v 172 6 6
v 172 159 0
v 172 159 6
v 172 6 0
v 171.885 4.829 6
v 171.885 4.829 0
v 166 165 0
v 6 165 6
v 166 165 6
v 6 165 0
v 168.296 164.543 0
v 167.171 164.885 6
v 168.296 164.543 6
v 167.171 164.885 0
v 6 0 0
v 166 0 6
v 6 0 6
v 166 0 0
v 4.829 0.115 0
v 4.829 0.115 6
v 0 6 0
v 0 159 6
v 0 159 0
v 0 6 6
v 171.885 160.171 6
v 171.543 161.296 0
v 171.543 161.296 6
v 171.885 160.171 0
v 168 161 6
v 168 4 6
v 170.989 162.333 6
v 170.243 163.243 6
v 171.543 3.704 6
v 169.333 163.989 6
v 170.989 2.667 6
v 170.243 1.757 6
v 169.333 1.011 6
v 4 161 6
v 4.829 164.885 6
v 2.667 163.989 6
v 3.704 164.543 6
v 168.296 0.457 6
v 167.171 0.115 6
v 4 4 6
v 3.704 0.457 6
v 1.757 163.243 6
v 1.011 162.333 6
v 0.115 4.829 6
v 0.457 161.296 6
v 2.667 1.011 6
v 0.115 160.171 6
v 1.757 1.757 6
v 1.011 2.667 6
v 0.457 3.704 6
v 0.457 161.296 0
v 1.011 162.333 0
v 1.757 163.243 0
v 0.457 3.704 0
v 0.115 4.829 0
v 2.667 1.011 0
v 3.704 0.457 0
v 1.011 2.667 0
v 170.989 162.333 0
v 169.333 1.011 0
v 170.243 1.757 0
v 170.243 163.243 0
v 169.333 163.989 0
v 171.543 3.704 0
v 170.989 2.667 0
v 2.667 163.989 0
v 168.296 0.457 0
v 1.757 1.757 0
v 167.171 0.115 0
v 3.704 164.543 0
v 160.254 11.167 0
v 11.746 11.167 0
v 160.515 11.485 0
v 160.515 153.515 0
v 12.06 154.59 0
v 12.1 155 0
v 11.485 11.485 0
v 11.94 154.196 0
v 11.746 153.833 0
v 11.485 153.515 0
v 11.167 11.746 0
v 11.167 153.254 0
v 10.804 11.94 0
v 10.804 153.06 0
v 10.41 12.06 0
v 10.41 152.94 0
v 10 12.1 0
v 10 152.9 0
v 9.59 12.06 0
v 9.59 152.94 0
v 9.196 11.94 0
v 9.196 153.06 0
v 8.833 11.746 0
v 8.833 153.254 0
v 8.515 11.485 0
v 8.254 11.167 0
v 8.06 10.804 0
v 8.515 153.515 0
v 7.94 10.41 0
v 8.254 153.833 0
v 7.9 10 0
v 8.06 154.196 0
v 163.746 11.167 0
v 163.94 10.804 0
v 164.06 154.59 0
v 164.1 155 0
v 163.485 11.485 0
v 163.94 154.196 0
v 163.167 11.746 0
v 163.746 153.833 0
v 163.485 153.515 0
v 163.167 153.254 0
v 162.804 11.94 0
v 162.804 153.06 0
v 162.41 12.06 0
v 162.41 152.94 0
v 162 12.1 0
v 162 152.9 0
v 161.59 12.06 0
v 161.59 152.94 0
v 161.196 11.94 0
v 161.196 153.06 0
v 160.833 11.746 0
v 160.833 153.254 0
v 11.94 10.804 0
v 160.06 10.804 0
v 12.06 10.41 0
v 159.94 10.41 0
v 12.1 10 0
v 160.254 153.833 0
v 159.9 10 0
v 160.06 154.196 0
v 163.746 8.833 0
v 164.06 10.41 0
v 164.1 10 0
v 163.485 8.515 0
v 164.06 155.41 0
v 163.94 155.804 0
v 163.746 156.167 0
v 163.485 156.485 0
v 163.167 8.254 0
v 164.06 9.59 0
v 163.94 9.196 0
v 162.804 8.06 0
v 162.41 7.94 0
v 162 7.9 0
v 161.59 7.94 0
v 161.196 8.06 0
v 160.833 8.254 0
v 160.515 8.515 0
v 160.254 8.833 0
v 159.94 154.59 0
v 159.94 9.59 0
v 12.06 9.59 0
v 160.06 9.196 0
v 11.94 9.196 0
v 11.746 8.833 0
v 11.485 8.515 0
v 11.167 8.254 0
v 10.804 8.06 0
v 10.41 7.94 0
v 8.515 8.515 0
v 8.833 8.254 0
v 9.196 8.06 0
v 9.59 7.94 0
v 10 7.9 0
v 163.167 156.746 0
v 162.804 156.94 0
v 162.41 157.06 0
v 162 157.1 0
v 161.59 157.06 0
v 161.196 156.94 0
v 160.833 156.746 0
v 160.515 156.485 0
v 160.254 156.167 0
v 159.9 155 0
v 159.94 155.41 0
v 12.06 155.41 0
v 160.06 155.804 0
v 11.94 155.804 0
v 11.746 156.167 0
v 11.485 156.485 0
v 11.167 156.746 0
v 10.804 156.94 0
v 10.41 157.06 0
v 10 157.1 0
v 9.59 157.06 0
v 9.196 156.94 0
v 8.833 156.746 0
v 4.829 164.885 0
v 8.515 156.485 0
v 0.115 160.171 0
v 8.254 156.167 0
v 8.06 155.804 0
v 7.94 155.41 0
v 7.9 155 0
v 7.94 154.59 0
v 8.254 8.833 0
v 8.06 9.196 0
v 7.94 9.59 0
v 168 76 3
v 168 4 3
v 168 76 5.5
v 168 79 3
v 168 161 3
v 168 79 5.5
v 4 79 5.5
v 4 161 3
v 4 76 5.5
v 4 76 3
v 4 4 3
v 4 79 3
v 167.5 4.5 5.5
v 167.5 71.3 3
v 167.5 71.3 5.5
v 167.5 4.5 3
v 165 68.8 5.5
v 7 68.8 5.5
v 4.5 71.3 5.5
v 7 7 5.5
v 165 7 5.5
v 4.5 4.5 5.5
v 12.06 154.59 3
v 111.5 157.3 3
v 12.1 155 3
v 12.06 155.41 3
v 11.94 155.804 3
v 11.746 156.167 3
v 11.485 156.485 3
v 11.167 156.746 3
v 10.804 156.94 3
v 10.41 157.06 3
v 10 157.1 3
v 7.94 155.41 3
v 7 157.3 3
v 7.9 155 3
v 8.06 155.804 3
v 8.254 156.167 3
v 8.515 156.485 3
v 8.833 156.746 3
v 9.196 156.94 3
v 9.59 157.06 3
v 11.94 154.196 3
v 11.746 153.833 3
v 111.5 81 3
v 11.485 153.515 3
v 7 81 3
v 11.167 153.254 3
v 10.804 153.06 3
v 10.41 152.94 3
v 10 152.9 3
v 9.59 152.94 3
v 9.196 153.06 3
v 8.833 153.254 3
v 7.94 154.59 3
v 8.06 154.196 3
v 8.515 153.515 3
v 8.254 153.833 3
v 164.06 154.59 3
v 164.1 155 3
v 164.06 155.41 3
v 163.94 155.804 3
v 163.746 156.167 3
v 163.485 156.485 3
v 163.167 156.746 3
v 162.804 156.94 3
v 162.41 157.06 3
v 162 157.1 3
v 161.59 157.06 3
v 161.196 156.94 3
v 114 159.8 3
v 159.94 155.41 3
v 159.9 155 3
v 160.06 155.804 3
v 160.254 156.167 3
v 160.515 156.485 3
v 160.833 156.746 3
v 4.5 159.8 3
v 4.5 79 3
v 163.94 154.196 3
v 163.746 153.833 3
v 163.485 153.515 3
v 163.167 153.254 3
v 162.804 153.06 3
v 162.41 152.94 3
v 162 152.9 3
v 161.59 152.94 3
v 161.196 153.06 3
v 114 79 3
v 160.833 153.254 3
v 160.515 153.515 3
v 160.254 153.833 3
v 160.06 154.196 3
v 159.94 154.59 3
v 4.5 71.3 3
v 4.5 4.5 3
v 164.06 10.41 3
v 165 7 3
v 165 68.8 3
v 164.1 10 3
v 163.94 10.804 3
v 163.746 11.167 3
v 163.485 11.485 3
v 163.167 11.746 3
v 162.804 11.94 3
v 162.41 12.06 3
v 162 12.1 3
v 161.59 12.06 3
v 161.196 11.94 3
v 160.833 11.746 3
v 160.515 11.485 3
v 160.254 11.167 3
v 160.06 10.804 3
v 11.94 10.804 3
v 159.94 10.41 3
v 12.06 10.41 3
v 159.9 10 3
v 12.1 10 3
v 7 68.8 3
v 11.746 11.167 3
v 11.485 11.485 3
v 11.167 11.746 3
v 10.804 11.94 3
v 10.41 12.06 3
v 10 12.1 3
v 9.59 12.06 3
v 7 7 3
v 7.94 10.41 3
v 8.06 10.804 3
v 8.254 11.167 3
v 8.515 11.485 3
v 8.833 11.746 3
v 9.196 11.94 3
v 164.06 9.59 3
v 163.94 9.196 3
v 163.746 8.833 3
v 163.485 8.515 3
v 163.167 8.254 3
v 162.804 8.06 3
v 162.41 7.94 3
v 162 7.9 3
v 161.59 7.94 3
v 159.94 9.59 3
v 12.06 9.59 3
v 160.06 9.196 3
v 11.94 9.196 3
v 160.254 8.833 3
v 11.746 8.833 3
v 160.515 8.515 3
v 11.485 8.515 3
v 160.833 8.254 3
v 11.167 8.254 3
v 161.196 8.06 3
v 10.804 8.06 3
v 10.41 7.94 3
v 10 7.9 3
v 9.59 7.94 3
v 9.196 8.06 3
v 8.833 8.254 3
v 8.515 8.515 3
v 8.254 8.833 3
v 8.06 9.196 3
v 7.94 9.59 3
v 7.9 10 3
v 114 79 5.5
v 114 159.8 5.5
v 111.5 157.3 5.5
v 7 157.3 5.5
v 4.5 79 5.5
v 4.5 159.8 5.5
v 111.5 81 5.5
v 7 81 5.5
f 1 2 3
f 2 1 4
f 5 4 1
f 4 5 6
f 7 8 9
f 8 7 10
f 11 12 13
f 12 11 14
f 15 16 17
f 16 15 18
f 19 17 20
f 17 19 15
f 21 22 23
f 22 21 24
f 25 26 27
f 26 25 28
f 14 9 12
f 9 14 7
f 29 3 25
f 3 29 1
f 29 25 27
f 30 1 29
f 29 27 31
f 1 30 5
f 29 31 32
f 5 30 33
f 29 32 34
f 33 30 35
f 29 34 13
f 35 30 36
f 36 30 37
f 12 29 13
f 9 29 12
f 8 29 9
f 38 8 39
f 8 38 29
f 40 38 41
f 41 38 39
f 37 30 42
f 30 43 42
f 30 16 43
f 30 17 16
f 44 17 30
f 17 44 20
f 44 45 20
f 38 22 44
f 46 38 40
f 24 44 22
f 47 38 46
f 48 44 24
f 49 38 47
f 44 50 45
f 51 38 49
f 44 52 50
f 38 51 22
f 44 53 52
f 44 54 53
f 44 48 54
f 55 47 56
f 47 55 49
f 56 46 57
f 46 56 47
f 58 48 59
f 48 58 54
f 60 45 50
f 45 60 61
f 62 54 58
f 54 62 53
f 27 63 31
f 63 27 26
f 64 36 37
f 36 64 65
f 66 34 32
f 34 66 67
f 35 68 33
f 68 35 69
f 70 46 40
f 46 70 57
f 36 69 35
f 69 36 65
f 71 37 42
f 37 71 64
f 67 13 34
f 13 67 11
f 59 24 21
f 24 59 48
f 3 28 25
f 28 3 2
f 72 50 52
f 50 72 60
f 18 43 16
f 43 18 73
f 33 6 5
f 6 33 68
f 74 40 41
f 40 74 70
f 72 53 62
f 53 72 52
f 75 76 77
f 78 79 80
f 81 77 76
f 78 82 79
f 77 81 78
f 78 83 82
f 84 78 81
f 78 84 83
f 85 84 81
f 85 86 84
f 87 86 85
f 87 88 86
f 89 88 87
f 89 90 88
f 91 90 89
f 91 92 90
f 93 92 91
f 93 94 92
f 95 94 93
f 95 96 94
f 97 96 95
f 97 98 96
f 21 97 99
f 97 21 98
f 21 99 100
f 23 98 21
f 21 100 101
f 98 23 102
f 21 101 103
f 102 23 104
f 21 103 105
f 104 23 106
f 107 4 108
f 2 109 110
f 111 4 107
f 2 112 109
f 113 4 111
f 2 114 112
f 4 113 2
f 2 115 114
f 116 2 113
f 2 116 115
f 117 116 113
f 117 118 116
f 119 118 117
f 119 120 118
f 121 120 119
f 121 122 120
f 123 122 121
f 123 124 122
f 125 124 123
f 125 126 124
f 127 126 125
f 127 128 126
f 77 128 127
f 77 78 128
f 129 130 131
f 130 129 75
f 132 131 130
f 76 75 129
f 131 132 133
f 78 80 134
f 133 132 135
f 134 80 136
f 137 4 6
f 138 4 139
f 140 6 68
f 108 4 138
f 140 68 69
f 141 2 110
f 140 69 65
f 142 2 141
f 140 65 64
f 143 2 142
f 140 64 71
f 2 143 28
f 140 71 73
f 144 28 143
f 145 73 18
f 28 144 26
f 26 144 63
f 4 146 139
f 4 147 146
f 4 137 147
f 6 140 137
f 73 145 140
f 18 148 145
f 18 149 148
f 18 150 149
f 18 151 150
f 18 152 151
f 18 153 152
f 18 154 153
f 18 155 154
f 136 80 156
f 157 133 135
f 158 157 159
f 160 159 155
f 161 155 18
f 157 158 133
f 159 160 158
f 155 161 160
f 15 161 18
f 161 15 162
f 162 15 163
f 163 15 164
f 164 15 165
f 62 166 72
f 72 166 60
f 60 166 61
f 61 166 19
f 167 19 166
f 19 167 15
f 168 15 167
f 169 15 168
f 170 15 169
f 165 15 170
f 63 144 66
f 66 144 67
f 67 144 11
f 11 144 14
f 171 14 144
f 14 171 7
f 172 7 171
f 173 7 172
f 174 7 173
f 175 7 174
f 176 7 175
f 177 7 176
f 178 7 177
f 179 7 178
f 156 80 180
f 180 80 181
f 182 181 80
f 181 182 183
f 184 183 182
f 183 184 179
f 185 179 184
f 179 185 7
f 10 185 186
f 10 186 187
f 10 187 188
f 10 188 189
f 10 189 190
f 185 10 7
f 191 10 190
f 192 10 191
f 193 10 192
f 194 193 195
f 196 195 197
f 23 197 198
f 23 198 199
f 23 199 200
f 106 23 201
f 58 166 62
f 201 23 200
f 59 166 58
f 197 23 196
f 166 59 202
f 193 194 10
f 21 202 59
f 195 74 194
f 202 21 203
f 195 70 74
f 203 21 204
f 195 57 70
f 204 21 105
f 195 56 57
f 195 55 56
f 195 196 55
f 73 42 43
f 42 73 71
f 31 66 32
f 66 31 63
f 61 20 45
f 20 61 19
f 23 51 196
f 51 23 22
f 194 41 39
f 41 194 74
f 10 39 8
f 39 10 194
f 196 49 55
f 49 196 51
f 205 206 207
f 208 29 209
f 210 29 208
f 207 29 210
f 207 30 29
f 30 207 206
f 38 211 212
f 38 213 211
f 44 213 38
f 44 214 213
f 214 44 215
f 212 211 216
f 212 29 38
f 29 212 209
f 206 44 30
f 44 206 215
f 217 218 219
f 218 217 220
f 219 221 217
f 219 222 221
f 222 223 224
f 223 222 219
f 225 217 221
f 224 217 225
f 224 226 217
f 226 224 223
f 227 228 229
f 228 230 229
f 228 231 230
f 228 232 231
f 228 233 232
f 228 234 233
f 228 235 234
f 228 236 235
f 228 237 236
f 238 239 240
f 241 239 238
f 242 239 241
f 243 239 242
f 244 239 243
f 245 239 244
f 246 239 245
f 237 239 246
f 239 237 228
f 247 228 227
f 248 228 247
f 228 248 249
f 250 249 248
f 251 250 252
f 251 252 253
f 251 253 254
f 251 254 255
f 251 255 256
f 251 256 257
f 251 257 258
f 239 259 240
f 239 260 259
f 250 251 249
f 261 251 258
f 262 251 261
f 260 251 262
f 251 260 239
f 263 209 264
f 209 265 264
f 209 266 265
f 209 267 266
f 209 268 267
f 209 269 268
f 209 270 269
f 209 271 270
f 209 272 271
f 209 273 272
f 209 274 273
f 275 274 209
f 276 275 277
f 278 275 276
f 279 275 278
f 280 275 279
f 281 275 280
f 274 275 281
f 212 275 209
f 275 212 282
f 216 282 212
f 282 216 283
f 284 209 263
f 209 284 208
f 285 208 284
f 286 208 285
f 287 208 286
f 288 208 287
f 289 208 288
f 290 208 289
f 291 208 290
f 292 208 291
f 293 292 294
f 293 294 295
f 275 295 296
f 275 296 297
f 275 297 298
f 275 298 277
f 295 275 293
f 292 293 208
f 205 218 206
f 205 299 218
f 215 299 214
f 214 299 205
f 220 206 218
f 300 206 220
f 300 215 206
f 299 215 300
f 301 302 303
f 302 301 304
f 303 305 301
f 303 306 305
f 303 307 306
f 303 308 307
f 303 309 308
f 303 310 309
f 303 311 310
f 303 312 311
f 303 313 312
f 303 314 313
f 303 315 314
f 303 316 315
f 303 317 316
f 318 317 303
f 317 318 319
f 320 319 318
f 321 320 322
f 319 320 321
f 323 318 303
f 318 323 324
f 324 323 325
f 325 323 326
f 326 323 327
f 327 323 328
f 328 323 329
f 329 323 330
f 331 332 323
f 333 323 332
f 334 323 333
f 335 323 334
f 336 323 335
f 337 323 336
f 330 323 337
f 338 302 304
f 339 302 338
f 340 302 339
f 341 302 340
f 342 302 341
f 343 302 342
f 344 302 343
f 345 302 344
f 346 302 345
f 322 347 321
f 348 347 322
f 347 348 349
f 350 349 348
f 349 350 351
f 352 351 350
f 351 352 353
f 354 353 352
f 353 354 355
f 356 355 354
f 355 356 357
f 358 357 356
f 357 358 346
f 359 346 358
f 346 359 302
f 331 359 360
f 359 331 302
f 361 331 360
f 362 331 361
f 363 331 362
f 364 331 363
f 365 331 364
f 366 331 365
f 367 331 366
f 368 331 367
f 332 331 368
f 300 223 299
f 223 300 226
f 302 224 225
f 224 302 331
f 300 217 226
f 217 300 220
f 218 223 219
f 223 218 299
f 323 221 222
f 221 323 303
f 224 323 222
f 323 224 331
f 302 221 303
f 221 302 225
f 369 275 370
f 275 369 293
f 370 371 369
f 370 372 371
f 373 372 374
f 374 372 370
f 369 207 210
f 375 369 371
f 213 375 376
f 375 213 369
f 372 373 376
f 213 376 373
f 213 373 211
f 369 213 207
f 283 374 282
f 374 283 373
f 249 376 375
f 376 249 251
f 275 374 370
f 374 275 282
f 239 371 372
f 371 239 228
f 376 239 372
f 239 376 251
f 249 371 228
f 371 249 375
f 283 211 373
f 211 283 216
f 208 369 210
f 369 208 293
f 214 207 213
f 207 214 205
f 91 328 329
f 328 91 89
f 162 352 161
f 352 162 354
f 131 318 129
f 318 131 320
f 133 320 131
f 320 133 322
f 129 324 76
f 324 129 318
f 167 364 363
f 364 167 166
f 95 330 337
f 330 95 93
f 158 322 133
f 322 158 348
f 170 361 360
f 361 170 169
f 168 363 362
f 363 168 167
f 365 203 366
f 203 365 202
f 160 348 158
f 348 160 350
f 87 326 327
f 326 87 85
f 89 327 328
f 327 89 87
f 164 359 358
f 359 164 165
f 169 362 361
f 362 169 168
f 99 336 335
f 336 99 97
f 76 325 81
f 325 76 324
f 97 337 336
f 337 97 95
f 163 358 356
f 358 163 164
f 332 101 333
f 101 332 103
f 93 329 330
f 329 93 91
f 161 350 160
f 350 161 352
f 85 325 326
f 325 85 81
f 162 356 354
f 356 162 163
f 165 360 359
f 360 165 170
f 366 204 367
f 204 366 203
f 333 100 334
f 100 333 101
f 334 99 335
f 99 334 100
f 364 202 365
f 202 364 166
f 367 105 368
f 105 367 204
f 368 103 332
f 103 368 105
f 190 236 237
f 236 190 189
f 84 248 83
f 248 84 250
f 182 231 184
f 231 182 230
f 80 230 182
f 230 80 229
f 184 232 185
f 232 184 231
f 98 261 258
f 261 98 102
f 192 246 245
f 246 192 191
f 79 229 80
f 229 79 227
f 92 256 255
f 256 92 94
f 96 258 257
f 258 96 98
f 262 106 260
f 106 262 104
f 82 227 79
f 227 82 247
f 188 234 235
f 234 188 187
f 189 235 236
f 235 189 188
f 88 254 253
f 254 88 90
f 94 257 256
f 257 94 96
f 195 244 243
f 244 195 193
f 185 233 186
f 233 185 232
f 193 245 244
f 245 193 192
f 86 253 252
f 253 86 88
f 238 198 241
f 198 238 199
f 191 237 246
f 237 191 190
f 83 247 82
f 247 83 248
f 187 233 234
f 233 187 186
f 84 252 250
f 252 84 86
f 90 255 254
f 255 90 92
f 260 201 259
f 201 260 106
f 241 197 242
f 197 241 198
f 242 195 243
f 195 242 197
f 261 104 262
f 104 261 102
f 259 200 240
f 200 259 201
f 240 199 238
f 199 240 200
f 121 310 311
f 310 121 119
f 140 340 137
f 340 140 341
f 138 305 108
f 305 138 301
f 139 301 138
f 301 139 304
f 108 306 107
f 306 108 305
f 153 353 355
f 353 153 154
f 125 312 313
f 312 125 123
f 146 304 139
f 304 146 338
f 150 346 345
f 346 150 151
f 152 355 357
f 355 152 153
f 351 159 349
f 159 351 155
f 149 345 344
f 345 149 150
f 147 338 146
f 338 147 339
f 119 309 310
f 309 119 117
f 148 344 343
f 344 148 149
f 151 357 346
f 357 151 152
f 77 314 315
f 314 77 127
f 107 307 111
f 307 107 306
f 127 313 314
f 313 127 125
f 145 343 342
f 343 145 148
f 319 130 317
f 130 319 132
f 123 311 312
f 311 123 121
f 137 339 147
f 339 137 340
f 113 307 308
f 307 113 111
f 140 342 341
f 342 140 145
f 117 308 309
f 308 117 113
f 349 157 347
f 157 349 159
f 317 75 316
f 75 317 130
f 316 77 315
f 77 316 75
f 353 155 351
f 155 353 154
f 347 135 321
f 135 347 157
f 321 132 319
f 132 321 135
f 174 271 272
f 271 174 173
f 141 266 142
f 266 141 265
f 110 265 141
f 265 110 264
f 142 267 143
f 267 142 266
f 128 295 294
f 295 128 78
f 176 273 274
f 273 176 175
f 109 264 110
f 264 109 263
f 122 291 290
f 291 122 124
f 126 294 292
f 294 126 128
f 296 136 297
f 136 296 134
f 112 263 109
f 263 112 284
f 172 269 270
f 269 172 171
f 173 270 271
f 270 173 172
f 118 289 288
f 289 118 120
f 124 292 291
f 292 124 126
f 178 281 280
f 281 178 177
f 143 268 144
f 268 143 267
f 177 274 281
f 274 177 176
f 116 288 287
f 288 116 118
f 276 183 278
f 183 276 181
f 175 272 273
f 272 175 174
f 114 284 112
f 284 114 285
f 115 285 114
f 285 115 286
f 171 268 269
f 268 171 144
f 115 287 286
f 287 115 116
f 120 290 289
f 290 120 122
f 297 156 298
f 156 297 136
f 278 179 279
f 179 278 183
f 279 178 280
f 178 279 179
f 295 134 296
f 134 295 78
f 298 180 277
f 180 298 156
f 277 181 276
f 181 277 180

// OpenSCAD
// BASS Project - ESP32 housing + CanaKit Raspberry Pi 5 cage mounting tray
// Units: millimeters
// part = 0: tray
// part = 1: visual assembly preview

part = 0;

// Current ESP32 housing footprint, including the external mounting tabs.
esp_x = 152;
esp_y = 55.8;

// CanaKit / official Raspberry Pi 5 case approximate footprint.
pi_x = 98.5;
pi_y = 70.3;

device_clearance = 3;
tray_x = 172;
tray_y = 165;
base_t = 3;
rim_h = 6;
rim_t = 4;
guide_h = 2.5;
guide_t = 2.5;

// Placement zones. The devices sit side-by-side along the tray's Y direction.
esp_pos = [10,10];
pi_pos = [10,84];

module rounded_box(size, r=4) {
    x=size[0]; y=size[1]; z=size[2];
    hull() {
        for (xx=[r,x-r], yy=[r,y-r])
            translate([xx,yy,0]) cylinder(r=r,h=z,$fn=32);
    }
}

module rectangular_guide(pos, size) {
    x=pos[0]; y=pos[1]; w=size[0]; d=size[1];
    // Four low guide rails. They leave the center flat for Velcro or glue.
    translate([x-guide_t,y-guide_t,base_t]) cube([w+2*guide_t,guide_t,guide_h]);
    translate([x-guide_t,y+d,base_t]) cube([w+2*guide_t,guide_t,guide_h]);
    translate([x-guide_t,y,base_t]) cube([guide_t,d,guide_h]);
    translate([x+w,y,base_t]) cube([guide_t,d,guide_h]);
}

module outer_rim() {
    difference() {
        rounded_box([tray_x,tray_y,rim_h],6);
        translate([rim_t,rim_t,-0.1])
            cube([tray_x-2*rim_t,tray_y-2*rim_t,rim_h+0.2]);
    }
}

module tray() {
    difference() {
        union() {
            rounded_box([tray_x,tray_y,base_t],6);
            outer_rim();

            // Low placement guides for the ESP32 enclosure and Pi cage.
            rectangular_guide([esp_pos[0]-device_clearance,esp_pos[1]-device_clearance],
                              [esp_x+2*device_clearance,esp_y+2*device_clearance]);
            rectangular_guide([pi_pos[0]-device_clearance,pi_pos[1]-device_clearance],
                              [pi_x+2*device_clearance,pi_y+2*device_clearance]);

            // Divider between the two mounting zones.
            translate([rim_t,76,base_t])
                cube([tray_x-2*rim_t,3,guide_h]);
        }

        // Optional M4 tray mounting holes at the four corners.
        for (x=[10,tray_x-10])
            for (y=[10,tray_y-10])
                translate([x,y,-0.1]) cylinder(d=4.2,h=base_t+0.2,$fn=32);
    }
}

if (part==0) tray();

if (part==1) {
    tray();
    // Approximate footprints only for visual placement checking.
    color([0.05,0.20,0.55,0.85])
        translate([esp_pos[0],esp_pos[1],base_t+guide_h])
            cube([esp_x,esp_y,55]);
    color([0.15,0.15,0.15,0.85])
        translate([pi_pos[0],pi_pos[1],base_t+guide_h])
            cube([pi_x,pi_y,33]);
}
